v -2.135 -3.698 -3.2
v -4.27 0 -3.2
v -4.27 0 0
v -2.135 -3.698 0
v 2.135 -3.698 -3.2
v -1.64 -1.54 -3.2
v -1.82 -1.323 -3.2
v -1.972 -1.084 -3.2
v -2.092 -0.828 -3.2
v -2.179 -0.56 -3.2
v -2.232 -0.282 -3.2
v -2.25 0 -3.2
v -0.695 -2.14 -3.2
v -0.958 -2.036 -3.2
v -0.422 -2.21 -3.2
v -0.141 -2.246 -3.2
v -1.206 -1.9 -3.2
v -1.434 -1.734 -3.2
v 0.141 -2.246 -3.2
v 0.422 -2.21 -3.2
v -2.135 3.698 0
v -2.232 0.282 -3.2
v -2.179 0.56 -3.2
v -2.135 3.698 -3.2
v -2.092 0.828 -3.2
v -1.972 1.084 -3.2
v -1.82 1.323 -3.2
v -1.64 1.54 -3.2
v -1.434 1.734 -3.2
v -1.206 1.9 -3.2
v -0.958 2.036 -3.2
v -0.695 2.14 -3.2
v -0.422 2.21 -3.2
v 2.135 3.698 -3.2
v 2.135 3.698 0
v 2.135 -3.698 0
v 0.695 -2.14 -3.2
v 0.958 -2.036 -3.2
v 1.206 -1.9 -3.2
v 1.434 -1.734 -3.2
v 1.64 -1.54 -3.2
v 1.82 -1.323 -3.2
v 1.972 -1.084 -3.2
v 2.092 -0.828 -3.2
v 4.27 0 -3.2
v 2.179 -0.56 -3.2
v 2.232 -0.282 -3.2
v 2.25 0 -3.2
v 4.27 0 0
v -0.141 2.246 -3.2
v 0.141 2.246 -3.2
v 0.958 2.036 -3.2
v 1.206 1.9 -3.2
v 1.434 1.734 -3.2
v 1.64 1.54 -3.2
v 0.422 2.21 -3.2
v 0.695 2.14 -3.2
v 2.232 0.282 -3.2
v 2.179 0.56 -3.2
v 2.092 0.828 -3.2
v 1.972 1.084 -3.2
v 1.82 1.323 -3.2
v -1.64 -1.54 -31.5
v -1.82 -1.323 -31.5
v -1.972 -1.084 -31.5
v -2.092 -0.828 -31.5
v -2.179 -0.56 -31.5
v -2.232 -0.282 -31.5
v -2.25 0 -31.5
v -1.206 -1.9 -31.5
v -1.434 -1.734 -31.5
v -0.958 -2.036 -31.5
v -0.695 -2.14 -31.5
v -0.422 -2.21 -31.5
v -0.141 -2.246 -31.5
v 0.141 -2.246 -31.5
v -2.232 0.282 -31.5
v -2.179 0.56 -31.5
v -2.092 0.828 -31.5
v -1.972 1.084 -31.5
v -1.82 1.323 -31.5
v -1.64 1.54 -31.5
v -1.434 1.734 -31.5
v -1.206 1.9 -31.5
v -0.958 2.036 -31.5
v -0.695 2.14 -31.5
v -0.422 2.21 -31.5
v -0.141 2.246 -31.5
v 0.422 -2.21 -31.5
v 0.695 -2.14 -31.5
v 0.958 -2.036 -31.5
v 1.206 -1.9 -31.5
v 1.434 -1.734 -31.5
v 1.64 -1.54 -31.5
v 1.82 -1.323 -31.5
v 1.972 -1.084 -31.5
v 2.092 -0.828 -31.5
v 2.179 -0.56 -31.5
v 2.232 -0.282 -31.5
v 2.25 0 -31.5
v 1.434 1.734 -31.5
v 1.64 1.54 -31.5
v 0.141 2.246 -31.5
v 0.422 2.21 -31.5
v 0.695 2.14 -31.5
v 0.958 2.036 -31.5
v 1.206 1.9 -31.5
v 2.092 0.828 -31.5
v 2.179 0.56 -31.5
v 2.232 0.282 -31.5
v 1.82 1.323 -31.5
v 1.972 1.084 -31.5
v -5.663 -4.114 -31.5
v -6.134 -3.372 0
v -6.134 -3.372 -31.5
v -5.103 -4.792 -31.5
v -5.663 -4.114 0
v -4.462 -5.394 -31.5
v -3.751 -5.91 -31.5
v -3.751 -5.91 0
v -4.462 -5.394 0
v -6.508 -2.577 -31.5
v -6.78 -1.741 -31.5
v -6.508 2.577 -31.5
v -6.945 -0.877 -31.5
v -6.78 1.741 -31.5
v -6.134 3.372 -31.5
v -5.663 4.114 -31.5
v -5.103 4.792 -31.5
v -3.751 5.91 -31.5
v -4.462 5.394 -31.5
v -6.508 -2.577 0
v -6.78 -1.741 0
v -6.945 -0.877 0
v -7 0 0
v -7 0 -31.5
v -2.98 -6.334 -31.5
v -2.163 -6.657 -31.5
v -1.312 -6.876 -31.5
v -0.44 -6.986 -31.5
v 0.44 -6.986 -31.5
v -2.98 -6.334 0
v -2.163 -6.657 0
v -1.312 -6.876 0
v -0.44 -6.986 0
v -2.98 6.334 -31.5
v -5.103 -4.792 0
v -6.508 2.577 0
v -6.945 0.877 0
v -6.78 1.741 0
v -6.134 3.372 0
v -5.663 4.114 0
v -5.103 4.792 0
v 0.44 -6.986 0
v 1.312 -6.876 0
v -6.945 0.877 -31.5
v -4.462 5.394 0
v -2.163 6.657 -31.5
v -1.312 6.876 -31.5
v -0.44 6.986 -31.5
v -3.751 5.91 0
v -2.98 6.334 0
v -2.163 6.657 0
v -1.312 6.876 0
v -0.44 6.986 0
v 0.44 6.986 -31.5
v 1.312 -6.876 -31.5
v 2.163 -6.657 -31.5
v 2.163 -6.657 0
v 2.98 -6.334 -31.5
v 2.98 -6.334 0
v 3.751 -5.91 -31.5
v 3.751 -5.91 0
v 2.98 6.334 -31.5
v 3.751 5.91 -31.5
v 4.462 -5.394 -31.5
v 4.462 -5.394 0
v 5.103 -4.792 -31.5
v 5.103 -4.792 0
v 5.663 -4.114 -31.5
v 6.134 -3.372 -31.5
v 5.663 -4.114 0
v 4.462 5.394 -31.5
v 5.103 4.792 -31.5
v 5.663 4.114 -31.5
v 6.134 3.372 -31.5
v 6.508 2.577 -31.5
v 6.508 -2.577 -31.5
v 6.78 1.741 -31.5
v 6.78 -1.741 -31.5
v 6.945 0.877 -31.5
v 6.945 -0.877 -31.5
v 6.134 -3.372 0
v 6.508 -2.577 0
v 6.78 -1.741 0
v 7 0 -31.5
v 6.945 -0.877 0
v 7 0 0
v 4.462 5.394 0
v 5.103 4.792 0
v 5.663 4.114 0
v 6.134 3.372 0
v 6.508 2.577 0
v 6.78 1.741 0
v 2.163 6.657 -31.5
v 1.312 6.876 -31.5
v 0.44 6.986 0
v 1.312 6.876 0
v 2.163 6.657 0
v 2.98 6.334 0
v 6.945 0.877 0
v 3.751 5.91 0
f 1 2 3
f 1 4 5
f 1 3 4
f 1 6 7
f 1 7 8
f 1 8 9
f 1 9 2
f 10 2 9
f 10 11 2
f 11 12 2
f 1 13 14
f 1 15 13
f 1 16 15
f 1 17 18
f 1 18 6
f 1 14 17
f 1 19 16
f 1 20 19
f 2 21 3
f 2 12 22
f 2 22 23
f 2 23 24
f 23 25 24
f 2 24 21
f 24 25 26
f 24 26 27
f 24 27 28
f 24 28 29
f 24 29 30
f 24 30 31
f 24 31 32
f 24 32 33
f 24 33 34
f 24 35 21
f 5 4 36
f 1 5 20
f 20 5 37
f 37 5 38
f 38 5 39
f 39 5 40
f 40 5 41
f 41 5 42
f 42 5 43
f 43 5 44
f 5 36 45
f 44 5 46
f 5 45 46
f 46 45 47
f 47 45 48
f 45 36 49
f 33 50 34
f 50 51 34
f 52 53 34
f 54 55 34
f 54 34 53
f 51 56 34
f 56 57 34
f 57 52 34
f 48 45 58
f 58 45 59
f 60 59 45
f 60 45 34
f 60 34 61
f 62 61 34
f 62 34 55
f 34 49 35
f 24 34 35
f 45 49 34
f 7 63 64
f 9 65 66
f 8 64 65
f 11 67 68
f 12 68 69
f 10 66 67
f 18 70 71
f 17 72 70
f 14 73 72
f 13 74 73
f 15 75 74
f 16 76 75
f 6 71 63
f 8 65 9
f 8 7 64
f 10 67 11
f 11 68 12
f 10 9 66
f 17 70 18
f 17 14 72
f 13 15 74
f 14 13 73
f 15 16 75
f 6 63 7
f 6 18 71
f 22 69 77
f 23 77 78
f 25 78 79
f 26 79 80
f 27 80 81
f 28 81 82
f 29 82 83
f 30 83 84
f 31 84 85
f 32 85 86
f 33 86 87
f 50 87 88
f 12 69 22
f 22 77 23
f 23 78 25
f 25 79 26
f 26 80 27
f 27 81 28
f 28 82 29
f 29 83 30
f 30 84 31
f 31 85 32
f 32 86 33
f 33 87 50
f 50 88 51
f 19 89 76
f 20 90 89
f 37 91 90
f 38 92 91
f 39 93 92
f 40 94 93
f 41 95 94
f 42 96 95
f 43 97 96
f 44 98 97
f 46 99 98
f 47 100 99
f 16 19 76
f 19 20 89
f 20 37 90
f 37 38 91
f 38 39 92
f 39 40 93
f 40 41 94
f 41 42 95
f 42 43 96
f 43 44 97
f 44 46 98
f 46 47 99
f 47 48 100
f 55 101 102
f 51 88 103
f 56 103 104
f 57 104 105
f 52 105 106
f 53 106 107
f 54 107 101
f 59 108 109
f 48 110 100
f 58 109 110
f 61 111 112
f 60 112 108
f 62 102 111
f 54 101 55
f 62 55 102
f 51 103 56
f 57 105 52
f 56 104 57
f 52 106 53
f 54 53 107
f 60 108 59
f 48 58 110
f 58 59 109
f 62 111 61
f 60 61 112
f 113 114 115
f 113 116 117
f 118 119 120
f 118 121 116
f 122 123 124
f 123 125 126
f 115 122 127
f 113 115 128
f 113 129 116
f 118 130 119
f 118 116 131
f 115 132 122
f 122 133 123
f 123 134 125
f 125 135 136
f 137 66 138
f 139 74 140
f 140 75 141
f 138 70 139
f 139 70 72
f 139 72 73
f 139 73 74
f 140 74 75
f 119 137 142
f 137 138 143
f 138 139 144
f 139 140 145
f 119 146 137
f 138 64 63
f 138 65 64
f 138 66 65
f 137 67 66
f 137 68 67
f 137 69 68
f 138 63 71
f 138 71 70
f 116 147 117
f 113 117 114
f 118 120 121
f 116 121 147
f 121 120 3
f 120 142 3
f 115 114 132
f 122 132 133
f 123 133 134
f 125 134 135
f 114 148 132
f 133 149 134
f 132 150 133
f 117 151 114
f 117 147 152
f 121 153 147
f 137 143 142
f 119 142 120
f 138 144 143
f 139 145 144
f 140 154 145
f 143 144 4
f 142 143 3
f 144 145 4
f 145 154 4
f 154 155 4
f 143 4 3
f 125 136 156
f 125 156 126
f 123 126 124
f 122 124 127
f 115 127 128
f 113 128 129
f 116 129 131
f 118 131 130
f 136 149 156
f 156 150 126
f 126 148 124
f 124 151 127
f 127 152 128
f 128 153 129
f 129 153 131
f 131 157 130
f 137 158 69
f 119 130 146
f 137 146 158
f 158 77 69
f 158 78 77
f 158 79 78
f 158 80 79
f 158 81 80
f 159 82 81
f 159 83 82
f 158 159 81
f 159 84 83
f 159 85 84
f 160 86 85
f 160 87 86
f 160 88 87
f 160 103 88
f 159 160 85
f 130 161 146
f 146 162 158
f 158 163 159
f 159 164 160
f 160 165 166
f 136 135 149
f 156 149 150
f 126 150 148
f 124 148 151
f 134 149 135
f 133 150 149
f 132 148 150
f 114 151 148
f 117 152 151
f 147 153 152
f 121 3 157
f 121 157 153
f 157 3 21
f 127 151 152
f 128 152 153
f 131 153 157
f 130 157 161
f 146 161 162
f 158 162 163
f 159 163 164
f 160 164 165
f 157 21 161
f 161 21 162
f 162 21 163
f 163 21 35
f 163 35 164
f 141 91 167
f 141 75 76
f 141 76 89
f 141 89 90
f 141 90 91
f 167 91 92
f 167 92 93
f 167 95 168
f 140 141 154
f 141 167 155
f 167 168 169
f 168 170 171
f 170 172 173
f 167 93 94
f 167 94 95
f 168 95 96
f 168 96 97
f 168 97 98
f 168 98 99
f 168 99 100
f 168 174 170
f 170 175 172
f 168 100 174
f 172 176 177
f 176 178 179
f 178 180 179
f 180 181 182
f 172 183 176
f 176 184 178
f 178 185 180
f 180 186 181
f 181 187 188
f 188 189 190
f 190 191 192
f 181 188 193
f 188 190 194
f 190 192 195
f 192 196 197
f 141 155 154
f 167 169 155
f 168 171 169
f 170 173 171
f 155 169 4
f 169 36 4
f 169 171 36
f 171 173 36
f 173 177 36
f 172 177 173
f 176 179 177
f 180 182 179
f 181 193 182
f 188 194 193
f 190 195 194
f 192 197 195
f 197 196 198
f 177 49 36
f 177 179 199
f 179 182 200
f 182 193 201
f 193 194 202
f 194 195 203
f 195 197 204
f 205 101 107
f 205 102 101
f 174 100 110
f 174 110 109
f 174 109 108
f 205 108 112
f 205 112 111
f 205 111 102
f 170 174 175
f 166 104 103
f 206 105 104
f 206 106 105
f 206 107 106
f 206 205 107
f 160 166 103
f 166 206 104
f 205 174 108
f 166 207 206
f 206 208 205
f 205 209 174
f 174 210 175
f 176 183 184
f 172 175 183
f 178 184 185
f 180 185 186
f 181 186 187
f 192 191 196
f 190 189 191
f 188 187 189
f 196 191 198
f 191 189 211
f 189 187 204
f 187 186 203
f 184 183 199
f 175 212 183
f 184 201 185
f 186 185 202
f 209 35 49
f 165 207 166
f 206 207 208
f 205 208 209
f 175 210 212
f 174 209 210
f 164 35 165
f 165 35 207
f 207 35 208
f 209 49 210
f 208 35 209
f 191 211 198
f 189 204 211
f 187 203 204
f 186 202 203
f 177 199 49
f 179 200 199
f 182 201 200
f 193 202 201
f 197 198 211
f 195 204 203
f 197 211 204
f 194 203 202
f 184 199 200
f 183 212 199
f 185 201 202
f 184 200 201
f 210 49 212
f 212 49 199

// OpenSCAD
$fn = 50;


difference() {
	union() {
		translate(v = [0, 0, -31.5000000000]) {
			cylinder(h = 31.5000000000, r = 7.0000000000);
		}
	}
	union() {
		translate(v = [0, 0, 0]) {
			rotate(a = [0, 0, 0]) {
				difference() {
					union() {
						translate(v = [0, 0, -3.2000000000]) {
							linear_extrude(height = 3.2000000000) {
								polygon(points = [[4.2698000000, 0.0000000000], [2.1349000000, 3.6977552691], [-2.1349000000, 3.6977552691], [-4.2698000000, 0.0000000000], [-2.1349000000, -3.6977552691], [2.1349000000, -3.6977552691]]);
							}
						}
					}
					union();
				}
			}
		}
		#translate(v = [0, 0, -100.0000000000]) {
			cylinder(h = 200, r = 2.2500000000);
		}
	}
}
